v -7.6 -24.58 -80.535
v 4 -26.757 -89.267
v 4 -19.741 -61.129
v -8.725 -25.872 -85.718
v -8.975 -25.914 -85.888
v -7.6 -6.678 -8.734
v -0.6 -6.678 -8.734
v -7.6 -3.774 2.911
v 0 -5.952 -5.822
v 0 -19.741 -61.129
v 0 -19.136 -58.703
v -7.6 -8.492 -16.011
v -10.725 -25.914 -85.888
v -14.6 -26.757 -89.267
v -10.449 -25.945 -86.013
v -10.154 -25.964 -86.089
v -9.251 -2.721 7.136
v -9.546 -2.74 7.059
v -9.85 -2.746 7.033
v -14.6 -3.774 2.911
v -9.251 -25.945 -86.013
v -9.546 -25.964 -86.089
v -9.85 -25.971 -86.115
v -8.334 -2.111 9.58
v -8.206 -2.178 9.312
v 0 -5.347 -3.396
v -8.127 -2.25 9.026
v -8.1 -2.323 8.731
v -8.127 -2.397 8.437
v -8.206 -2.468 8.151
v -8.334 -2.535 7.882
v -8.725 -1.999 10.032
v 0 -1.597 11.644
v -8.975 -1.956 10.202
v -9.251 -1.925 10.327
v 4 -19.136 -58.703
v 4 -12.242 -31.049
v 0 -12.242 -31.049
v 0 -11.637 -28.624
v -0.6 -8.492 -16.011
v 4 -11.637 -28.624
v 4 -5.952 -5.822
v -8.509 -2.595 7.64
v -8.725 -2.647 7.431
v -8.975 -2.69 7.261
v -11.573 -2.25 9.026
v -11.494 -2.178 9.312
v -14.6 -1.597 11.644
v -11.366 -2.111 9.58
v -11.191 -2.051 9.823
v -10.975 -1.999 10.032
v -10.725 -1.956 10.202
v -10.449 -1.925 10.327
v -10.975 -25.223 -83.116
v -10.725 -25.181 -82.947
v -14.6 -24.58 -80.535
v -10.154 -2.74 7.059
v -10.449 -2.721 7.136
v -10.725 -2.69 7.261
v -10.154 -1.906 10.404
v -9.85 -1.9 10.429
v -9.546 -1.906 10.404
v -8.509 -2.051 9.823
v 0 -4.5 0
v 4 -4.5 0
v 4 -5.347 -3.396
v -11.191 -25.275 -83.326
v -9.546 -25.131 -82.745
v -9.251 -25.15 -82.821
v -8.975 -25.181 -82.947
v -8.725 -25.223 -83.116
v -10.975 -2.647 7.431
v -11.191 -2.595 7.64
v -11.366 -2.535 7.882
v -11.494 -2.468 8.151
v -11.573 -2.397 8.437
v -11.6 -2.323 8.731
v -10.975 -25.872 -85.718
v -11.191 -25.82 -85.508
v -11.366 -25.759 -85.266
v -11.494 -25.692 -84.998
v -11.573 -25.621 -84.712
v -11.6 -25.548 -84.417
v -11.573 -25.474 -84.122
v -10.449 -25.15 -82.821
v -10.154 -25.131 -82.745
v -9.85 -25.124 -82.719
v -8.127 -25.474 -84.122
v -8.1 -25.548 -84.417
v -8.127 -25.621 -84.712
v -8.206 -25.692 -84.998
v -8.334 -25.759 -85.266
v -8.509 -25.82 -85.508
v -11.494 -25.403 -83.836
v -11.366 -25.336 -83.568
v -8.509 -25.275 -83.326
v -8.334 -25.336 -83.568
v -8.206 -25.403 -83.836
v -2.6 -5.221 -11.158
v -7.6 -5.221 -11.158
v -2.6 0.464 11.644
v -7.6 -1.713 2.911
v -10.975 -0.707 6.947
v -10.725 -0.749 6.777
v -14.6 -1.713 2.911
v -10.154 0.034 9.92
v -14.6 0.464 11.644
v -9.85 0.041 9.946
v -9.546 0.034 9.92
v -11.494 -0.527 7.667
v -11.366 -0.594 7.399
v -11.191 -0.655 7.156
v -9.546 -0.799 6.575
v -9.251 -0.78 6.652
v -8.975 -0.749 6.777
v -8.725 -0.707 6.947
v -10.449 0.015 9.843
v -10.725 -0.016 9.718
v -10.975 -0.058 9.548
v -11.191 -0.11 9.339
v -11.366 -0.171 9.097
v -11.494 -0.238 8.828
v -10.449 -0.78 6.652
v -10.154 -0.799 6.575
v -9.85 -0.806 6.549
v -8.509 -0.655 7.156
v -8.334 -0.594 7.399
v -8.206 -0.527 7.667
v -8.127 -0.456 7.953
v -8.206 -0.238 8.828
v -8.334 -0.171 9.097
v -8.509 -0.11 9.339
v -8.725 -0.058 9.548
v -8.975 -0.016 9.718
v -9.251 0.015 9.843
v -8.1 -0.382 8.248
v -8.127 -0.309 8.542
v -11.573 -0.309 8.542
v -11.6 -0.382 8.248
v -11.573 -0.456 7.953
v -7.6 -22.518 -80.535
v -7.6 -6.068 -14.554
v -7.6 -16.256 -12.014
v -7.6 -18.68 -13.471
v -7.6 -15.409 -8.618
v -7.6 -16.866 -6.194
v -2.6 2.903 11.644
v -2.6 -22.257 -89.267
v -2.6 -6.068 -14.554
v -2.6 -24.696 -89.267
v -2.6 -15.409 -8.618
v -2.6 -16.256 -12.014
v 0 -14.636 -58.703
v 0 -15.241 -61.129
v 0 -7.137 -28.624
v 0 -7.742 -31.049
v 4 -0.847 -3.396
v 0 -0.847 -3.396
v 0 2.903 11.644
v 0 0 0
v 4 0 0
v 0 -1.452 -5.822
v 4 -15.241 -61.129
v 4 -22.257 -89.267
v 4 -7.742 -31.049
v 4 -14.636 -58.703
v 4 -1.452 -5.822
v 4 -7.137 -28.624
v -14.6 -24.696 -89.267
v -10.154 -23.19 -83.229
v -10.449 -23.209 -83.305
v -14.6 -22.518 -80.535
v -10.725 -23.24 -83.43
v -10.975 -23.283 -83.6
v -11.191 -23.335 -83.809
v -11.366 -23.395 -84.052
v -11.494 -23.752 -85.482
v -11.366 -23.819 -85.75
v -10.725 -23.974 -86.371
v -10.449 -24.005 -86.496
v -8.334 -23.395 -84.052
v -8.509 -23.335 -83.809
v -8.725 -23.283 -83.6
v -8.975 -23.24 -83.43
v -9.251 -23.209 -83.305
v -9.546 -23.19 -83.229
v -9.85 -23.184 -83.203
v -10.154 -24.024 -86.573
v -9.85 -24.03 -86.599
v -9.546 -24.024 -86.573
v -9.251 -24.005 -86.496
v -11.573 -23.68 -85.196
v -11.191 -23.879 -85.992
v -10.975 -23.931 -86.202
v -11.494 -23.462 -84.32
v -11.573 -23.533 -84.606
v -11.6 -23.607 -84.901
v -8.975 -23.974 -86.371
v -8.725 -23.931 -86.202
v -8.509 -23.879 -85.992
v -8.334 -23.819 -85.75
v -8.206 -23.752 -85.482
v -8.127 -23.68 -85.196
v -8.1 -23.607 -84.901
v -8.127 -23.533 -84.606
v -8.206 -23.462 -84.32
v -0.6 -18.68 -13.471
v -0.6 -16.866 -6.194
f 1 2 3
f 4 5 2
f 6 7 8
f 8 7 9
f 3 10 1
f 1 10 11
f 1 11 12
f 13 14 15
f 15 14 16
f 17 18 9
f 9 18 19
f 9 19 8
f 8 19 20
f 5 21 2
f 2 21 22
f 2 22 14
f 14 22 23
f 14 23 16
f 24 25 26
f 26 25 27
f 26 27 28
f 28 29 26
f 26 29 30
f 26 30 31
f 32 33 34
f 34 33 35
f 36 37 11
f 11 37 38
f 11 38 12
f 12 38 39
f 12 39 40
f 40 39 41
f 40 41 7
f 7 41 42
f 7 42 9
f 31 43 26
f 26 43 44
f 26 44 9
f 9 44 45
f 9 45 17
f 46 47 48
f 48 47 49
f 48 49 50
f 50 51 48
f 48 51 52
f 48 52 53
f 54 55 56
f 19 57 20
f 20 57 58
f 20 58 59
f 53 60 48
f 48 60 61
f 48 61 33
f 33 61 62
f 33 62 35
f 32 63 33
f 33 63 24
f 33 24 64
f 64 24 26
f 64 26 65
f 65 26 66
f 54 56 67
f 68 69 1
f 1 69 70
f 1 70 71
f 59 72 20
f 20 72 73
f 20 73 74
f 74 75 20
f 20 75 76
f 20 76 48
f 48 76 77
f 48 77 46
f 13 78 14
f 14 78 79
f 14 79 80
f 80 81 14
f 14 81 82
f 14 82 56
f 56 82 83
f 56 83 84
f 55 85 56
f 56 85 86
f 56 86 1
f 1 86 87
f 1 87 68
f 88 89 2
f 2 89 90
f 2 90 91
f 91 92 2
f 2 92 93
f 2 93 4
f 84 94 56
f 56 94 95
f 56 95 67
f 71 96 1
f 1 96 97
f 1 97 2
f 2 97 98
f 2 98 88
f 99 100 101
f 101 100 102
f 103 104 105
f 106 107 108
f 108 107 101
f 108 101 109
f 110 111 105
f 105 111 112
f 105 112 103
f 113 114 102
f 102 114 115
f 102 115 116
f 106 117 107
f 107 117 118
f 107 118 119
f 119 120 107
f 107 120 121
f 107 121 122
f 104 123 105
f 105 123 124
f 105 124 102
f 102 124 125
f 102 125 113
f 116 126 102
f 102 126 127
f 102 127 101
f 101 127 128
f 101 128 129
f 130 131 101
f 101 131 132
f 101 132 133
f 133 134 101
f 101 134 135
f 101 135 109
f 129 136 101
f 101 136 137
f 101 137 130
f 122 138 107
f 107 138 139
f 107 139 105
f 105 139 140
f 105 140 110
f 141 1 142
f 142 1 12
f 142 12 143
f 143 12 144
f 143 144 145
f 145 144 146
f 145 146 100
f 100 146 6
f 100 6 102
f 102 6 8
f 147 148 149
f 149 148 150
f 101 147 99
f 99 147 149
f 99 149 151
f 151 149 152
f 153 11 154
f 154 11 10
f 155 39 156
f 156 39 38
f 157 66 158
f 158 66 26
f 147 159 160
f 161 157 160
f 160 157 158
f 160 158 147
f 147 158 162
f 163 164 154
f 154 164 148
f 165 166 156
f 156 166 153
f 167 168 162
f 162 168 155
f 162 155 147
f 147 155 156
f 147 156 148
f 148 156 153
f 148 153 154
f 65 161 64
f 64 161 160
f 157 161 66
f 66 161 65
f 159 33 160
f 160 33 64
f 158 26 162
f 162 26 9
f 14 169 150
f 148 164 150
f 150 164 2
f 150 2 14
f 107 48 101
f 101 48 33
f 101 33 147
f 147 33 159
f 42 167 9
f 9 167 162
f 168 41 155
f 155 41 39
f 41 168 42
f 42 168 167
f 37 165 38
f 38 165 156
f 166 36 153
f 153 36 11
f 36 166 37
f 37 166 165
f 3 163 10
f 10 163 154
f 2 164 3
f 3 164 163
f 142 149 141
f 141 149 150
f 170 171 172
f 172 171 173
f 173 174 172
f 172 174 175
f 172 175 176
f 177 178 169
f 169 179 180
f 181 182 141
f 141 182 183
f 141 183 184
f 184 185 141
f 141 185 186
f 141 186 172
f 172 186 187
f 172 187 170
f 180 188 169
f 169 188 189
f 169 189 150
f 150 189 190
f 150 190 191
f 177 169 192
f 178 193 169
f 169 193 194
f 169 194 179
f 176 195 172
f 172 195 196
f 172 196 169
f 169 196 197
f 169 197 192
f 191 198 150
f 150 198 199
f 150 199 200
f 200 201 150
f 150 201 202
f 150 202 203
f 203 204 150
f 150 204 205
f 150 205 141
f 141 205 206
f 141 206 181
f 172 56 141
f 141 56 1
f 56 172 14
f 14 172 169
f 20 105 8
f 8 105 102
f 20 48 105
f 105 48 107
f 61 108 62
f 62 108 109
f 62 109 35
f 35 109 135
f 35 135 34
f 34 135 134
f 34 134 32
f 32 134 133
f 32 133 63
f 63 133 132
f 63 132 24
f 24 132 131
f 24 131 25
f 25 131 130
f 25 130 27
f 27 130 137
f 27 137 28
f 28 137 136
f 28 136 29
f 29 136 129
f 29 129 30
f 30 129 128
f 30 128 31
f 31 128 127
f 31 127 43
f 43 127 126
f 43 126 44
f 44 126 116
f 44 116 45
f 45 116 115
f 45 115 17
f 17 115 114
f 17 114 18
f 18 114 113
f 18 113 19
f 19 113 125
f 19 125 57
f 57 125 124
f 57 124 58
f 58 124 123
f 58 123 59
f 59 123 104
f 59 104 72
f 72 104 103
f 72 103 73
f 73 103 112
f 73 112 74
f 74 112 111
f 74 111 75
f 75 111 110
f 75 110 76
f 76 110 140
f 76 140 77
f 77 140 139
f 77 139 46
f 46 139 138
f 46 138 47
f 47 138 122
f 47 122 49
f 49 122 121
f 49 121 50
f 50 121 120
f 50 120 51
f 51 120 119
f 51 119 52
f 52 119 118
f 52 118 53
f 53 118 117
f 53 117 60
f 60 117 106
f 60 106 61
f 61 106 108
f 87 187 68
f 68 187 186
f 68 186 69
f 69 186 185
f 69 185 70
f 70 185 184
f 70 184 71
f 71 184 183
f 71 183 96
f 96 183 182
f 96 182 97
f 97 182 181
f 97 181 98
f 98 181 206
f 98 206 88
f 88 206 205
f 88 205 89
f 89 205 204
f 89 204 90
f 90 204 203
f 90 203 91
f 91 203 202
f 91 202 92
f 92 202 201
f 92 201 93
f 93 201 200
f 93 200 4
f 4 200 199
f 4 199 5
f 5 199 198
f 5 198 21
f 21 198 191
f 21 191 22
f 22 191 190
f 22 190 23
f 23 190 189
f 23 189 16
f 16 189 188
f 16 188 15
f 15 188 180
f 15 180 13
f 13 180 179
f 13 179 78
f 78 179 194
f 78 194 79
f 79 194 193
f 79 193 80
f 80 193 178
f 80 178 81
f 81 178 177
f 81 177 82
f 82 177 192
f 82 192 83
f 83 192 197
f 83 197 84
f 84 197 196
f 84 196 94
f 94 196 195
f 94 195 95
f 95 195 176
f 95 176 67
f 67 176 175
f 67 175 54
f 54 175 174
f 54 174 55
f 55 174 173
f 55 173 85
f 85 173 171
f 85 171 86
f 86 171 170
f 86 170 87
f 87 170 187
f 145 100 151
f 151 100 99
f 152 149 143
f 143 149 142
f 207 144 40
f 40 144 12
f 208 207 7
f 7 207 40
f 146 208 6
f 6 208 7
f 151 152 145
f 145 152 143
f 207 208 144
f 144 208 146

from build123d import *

# Parameters (mm, degrees)
SIDE_COMB_DEPTH           = 4
SIDE_COMB_2_DEPTH         = 4
SIDE_COMB_3_DEPTH         = 4
SIDE_COMB_4_DEPTH         = 4
SIDE_SPACER_DEPTH         = 2.6
NARROW_SUPPORT_DEPTH      = 5
SCREW_TABS_DEPTH          = 7
SKETCH5_R                 = 1.75
SCREW_HOLES_DEPTH         = 7
SKETCH7_W                 = 5
SKETCH7_H                 = 3.5
GAP_FOR_SUPPORT_BAR_DEPTH = 2
SUPPORT_BAR_SIDES_DEPTH   = 8.5
SKETCH8_W                 = 7
SKETCH8_H                 = 7.5
SUPPORT_BAR_BOTTOM_DEPTH  = 2


with BuildPart() as part:
    # Sketch1 → Side comb (new body)
    with BuildSketch(Plane(origin=(0, 0, 0), x_dir=(0, 0, -1), z_dir=(1, 0, 0))):
        Polygon((3.396035042, -0.846726635), (0, 0), (0, -4.5), (3.396035042, -5.346726635), align=None)
    extrude(amount=SIDE_COMB_DEPTH)



with BuildPart() as body_2:
    # Sketch1 → Side comb 2 (new body)
    with BuildSketch(Plane(origin=(0, 0, 0), x_dir=(0, 0, -1), z_dir=(1, 0, 0))):
        Polygon((28.623723925, -7.13669592), (5.821774358, -1.451531374), (5.821774358, -5.951531374), (28.623723925, -11.63669592), align=None)
    extrude(amount=SIDE_COMB_2_DEPTH)


with BuildPart() as body_3:
    # Sketch1 → Side comb 3 (new body)
    with BuildSketch(Plane(origin=(0, 0, 0), x_dir=(0, 0, -1), z_dir=(1, 0, 0))):
        Polygon((58.70289144, -14.636274684), (31.049463241, -7.741500659), (31.049463241, -12.241500659), (58.70289144, -19.136274684), align=None)
    extrude(amount=SIDE_COMB_3_DEPTH)


with BuildPart() as body_4:
    # Sketch1 → Side comb 4 (new body)
    with BuildSketch(Plane(origin=(0, 0, 0), x_dir=(0, 0, -1), z_dir=(1, 0, 0))):
        Polygon((89.267206817, -22.256814395), (61.128630755, -15.241079423), (61.128630755, -19.741079423), (89.267206817, -26.756814395), align=None)
    extrude(amount=SIDE_COMB_4_DEPTH)


with BuildPart() as part_1:
    add(part.part)

    add(body_2.part)  # Side spacer merges body 2

    add(body_3.part)  # Side spacer merges body 3

    add(body_4.part)  # Side spacer merges body 4
    # Sketch2 → Side spacer (add)
    with BuildSketch(Plane.ZY):
        Polygon((-89.267206817, -22.256814395), (-89.267206817, -26.756814395), (11.643548715, -1.596937253), (11.643548715, 2.903062747), align=None)
    extrude(amount=SIDE_SPACER_DEPTH)

    # Sketch3 → Narrow support (add)
    with BuildSketch(Plane.ZY.offset(2.6)):
        Polygon((-89.267206817, -24.695587136), (11.643548715, 0.464290006), (11.643548715, -1.596937253), (-89.267206817, -26.756814395), align=None)
    extrude(amount=NARROW_SUPPORT_DEPTH)

    # Sketch4 → Screw tabs (add)
    with BuildSketch(Plane.ZY.offset(7.6)):
        Polygon((-89.267206817, -24.695587136), (-80.534545281, -22.518290076), (-80.534545281, -24.579517335), (-89.267206817, -26.756814395), align=None)
        Polygon((11.643548715, 0.464290006), (11.643548715, -1.596937253), (2.910887179, -3.774234313), (2.910887179, -1.713007055), align=None)
    extrude(amount=SCREW_TABS_DEPTH)

    # Sketch5 → Screw holes (cut)
    with BuildSketch(Plane(origin=(0, -2.296040631, 0.572467225), x_dir=(1, 0, 0), z_dir=(0, 0.970295726, -0.241921896))):
        with Locations((-9.85, 88.089992525)):
            Circle(SKETCH5_R)
        with Locations((-9.85, -7.910007475)):
            Circle(SKETCH5_R)
    extrude(amount=-SCREW_HOLES_DEPTH, mode=Mode.SUBTRACT)

    # Sketch7 → Gap for support bar (cut)
    with BuildSketch(Plane(origin=(0, -4.236632084, 1.056311016), x_dir=(1, 0, 0), z_dir=(0, -0.970295726, 0.241921896))):
        with Locations((-5.1, -13.839992525)):
            Rectangle(SKETCH7_W, SKETCH7_H)
    extrude(amount=-GAP_FOR_SUPPORT_BAR_DEPTH, mode=Mode.SUBTRACT)

    # Sketch6 → Support bar sides (add)
    with BuildSketch(Plane(origin=(0, -4.236632084, 1.056311016), x_dir=(1, 0, 0), z_dir=(0, -0.970295726, 0.241921896))):
        Polygon((-2.6, -12.089992525), (-7.6, -12.089992525), (-7.6, -10.089992525), (-0.6, -10.089992525), (-0.6, -17.589992525), (-7.6, -17.589992525), (-7.6, -15.589992525), (-2.6, -15.589992525), align=None)
    extrude(amount=SUPPORT_BAR_SIDES_DEPTH)

    # Sketch8 → Support bar bottom (add)
    with BuildSketch(Plane(origin=(0, -12.484145757, 3.112647129), x_dir=(1, 0, 0), z_dir=(0, -0.970295726, 0.241921896))):
        with Locations((-4.1, -13.839992525)):
            Rectangle(SKETCH8_W, SKETCH8_H)
    extrude(amount=SUPPORT_BAR_BOTTOM_DEPTH)


solid = part_1.part
